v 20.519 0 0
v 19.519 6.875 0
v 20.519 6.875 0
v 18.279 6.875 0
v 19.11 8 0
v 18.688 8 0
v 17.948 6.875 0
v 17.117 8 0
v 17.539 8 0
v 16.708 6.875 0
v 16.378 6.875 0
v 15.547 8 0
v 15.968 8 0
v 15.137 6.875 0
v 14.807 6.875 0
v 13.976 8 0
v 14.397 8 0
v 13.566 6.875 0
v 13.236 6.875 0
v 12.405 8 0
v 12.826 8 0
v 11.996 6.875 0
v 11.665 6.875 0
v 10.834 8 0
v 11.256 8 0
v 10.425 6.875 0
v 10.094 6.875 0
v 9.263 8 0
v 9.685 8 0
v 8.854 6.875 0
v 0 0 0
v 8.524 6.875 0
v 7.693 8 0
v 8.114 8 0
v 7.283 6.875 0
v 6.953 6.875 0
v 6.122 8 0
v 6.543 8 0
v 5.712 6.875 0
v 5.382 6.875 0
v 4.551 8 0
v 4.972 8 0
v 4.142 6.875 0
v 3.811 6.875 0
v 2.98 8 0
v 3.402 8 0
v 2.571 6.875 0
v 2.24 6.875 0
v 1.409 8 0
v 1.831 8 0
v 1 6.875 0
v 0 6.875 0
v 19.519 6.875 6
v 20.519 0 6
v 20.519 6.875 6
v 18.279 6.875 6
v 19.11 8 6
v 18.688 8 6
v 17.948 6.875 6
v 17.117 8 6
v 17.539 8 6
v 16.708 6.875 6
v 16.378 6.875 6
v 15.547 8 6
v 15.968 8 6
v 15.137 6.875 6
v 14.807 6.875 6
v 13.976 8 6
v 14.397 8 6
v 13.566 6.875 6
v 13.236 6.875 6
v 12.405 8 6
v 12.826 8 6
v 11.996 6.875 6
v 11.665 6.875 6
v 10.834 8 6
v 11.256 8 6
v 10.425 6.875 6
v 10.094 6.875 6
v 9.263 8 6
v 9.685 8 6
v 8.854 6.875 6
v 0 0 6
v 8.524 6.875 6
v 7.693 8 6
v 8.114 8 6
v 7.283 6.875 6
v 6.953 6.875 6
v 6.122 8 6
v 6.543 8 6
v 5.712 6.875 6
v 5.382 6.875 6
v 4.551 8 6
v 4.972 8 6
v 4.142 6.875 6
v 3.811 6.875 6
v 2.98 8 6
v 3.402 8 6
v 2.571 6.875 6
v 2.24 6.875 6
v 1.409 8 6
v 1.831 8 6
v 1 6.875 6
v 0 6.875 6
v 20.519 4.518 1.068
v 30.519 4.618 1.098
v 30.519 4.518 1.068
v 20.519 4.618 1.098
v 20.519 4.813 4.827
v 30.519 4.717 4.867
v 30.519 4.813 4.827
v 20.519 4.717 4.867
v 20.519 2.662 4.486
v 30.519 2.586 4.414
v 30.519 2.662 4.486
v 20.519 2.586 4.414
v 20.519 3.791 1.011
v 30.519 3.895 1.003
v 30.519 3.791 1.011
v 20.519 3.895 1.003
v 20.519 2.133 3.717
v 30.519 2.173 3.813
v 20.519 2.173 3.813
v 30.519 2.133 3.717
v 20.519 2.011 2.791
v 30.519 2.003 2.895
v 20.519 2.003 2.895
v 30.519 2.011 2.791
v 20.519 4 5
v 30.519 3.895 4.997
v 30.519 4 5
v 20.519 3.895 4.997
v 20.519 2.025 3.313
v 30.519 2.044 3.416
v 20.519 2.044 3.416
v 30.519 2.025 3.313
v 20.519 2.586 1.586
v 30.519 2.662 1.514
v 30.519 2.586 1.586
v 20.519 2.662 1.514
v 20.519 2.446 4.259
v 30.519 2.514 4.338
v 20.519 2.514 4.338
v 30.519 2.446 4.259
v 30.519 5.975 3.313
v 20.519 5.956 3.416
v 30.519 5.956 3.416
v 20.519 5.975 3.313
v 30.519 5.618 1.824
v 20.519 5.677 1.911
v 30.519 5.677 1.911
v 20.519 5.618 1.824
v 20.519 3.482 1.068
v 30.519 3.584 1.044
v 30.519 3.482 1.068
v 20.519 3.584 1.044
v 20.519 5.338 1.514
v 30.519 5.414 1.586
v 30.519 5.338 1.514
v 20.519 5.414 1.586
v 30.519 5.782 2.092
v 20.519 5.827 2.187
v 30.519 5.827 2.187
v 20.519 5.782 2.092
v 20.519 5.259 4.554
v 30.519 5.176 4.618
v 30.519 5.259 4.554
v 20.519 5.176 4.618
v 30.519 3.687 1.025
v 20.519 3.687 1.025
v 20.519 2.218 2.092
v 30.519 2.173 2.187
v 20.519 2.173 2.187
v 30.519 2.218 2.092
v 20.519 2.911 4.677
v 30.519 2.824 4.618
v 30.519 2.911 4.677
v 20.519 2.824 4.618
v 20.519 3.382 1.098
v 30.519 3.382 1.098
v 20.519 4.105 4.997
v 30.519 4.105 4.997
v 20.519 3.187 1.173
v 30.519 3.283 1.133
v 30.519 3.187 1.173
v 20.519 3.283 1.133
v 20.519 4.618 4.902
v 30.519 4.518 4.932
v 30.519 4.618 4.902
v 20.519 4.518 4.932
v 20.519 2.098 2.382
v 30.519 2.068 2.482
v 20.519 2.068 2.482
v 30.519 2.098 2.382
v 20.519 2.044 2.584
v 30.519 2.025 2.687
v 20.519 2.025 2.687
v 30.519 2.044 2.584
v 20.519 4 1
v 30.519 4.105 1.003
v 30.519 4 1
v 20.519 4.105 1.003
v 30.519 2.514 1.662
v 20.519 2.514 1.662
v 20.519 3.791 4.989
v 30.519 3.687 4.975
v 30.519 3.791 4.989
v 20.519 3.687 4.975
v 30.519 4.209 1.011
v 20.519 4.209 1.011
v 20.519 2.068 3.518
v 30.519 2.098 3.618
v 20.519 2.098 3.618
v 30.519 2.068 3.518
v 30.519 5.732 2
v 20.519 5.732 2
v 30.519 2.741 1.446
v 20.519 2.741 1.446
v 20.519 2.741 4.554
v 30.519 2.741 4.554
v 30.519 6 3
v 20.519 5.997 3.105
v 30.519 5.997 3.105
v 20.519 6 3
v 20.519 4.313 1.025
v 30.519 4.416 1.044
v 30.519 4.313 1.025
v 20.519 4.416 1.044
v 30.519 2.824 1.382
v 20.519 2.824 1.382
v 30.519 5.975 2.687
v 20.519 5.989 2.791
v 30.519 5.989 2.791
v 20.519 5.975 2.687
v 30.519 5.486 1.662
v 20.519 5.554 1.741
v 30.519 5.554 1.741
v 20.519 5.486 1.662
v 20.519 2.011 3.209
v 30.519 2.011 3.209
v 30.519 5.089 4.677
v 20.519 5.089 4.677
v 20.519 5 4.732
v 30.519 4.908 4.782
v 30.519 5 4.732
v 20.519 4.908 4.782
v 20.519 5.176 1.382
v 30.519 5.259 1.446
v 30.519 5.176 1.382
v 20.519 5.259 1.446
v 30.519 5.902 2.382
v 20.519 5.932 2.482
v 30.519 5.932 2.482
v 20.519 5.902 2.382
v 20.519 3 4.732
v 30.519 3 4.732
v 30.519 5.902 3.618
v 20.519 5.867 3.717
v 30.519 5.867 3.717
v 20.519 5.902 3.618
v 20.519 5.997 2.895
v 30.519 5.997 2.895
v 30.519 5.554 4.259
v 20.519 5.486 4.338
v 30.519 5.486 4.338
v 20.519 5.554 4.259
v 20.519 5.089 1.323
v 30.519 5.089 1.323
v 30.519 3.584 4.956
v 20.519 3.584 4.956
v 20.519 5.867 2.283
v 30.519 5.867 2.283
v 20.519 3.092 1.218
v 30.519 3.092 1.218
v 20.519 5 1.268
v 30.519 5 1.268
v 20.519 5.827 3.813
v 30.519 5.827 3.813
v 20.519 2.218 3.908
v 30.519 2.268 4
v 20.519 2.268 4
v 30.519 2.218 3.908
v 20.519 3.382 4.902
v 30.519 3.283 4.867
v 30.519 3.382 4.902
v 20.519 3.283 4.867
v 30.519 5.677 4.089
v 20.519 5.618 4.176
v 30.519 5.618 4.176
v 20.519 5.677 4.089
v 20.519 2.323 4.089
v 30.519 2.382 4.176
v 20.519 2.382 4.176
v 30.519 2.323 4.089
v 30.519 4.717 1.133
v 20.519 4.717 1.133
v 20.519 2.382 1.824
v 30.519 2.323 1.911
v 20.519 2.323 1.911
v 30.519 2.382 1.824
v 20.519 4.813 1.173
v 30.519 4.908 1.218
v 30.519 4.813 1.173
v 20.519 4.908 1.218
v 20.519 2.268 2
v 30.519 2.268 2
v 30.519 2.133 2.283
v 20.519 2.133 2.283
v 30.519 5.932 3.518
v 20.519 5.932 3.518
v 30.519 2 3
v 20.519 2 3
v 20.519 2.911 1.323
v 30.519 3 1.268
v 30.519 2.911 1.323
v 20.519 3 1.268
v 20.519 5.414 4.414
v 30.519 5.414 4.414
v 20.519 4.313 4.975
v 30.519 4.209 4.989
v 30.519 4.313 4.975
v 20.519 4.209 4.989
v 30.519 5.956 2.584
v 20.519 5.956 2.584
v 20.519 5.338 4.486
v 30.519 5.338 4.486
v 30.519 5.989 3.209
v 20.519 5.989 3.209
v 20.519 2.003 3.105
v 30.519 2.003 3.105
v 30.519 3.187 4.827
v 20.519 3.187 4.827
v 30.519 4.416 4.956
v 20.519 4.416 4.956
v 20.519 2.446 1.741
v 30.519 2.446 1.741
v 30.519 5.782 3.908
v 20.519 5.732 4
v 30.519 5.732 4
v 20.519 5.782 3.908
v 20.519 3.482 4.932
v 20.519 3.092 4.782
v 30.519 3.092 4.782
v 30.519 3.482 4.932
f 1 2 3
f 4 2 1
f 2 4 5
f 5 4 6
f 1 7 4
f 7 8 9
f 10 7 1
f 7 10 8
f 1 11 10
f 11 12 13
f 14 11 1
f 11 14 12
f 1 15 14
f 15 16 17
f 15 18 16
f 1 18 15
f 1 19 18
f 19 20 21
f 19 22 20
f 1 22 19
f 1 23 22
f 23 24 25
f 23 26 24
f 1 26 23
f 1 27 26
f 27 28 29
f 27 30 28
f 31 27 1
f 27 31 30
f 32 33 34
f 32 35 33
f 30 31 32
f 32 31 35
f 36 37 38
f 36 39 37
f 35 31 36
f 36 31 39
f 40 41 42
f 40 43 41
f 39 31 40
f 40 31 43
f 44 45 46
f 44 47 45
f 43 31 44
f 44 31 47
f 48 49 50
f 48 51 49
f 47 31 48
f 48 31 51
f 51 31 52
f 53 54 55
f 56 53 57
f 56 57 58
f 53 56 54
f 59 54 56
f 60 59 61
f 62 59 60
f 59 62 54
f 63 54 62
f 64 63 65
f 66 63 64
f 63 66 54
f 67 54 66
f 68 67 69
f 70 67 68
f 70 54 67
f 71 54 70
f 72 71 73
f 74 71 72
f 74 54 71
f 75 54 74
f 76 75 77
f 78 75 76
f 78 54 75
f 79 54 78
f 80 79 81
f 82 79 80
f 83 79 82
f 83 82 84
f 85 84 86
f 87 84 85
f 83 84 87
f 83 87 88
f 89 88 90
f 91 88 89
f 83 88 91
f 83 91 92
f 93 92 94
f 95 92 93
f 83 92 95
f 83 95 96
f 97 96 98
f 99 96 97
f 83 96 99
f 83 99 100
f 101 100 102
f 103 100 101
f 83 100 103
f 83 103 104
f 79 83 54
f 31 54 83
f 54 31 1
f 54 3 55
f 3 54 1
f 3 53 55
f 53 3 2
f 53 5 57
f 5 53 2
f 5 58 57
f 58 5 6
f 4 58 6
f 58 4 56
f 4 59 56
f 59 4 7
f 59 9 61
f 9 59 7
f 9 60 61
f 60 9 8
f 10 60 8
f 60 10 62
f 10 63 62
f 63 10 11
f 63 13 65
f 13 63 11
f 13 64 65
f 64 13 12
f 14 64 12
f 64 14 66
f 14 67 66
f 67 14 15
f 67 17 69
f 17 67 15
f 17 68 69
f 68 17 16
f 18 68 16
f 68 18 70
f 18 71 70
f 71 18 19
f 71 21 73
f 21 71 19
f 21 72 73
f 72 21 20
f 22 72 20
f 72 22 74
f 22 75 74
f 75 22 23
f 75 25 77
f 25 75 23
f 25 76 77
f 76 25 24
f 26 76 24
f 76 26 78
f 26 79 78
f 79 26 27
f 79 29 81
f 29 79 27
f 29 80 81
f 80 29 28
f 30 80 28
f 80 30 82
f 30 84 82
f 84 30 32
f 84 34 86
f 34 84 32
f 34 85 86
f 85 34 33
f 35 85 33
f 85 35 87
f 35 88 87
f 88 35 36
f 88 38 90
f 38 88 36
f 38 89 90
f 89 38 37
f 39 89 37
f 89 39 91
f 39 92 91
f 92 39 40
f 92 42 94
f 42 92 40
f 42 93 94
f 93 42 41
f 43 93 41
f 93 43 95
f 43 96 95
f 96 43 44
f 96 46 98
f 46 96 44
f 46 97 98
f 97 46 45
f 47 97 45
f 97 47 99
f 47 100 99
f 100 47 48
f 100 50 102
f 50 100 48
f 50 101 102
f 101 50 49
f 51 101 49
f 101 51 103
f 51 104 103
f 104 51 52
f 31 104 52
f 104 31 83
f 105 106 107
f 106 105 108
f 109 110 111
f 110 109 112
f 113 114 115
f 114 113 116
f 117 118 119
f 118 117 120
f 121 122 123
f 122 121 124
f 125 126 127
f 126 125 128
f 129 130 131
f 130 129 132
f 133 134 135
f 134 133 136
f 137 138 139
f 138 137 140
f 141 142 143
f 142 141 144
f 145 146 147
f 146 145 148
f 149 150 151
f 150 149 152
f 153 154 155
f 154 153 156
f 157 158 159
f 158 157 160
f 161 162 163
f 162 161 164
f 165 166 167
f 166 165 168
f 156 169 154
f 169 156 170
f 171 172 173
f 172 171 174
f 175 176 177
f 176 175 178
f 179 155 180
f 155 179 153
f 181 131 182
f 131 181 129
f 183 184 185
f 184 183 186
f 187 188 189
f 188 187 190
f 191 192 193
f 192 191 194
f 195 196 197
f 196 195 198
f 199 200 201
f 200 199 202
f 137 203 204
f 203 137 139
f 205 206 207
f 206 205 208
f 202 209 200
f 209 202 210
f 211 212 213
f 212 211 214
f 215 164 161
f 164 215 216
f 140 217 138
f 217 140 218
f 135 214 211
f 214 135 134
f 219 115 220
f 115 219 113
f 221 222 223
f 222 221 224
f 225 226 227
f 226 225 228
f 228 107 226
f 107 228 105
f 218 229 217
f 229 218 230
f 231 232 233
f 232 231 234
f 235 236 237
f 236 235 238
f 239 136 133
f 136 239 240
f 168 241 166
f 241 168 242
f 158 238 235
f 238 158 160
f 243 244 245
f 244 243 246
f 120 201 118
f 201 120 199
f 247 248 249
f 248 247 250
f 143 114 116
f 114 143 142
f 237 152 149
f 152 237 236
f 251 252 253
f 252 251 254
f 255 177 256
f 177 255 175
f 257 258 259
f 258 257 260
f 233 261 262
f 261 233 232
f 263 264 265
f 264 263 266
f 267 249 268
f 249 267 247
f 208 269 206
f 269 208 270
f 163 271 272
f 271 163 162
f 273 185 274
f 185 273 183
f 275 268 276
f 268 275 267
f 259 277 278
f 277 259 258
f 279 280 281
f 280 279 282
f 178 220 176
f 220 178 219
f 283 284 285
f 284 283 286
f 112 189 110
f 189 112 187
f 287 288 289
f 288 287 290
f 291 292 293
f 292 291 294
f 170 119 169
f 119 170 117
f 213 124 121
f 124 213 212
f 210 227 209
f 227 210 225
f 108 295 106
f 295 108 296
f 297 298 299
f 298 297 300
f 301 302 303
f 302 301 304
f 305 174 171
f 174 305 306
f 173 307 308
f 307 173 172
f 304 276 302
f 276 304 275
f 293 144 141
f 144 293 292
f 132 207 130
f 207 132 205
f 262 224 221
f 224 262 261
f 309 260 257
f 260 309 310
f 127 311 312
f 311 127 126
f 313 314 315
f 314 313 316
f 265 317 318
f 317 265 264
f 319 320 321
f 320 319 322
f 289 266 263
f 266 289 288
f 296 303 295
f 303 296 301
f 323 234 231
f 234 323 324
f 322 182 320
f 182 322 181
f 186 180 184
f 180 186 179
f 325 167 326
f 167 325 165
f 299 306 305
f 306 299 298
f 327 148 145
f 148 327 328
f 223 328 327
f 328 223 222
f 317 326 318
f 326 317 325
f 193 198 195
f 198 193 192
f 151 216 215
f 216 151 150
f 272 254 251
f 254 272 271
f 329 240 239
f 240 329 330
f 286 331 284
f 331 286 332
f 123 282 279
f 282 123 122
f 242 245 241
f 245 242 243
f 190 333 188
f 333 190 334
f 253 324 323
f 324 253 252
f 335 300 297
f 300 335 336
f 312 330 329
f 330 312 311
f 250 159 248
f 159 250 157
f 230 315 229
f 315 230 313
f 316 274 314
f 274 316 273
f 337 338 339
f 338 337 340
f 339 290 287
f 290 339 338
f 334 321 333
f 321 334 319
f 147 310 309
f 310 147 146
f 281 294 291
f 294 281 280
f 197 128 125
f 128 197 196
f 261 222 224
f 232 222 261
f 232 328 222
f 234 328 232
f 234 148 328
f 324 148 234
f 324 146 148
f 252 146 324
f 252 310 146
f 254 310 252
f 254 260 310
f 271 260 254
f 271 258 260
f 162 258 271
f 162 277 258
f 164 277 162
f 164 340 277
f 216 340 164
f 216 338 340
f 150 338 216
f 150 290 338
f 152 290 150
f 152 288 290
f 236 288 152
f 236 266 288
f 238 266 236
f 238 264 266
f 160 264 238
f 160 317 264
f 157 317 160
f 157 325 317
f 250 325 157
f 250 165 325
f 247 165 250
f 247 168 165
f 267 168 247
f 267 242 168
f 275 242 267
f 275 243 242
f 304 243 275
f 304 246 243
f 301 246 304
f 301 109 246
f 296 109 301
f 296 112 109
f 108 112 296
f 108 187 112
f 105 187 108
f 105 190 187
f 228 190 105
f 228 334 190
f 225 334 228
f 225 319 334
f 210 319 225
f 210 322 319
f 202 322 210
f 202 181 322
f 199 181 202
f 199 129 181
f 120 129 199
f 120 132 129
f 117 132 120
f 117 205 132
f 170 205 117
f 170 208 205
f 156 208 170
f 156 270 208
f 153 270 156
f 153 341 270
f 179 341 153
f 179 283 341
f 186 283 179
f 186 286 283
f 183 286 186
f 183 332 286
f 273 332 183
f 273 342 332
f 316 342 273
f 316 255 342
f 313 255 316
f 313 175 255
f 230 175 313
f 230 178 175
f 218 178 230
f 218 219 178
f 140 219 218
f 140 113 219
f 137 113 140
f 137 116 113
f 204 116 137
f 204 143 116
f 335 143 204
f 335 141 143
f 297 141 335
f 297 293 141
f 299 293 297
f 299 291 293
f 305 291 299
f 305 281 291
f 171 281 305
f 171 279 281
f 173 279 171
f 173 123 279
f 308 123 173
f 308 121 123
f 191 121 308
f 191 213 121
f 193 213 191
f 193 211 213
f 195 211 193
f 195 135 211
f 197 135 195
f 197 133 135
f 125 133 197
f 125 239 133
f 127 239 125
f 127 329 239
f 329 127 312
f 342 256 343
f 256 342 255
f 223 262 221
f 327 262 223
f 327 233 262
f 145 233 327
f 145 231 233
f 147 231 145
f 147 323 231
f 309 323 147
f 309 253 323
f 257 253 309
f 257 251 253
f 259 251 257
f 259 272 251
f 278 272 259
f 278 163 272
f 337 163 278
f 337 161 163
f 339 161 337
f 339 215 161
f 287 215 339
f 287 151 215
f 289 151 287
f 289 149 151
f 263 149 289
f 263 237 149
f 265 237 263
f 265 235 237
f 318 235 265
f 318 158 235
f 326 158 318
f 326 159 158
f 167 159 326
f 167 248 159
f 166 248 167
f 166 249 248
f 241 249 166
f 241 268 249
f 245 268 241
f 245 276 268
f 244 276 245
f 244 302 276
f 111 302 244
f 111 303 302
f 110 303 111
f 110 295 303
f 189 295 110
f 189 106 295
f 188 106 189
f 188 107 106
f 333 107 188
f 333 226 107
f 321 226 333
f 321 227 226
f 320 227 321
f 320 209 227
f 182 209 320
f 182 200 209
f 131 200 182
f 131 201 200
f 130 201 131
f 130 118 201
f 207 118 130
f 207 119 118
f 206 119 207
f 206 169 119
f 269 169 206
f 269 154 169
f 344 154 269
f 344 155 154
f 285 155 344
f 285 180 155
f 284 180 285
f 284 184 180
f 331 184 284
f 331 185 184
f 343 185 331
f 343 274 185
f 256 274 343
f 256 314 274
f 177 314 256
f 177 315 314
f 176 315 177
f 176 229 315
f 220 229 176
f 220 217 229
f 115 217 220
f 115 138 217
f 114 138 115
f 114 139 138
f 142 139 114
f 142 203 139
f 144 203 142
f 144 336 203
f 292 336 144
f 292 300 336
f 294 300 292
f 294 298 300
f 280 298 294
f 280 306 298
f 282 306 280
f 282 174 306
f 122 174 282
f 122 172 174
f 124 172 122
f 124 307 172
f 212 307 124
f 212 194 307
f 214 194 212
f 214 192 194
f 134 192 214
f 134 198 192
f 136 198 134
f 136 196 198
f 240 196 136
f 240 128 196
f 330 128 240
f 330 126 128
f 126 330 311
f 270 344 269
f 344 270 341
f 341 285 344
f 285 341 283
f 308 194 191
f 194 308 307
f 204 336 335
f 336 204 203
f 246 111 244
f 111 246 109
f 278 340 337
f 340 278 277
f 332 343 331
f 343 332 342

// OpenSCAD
// file: ring_gear.scad
// docs/vault/sandbox/ring_gear.scad
//
// Parametric spur gear in pure OpenSCAD -- no external library, no
// FeatureScript. The same gear that Onshape's Spur Gear FeatureScript
// generates with 4 clicks, expressed here as ~20 lines of editable
// expressions. See docs/vault/onshape-vs-openscad.md for the side-by-
// side comparison and the tradeoffs.
//
// Approximation: tooth flanks are STRAIGHT lines drawn from the root
// circle to the tip circle, slanted by the pressure angle. A real
// involute curve would be a 5-8 point arc per flank. The straight-
// flank version reads as a recognisable gear at this scale and is
// quick to grok; if you need a metrology-grade involute, use BOSL2's
// spur_gear() or the build123d / bd_warehouse pipeline in
// src/vault/mechanism.py.
//
// Open in OpenSCAD GUI, View -> Customizer, drag sliders. To export
// the ring gear alone as an STL:
//   openscad -o ring_gear.stl -D 'show_spurs=false' ring_gear.scad

/* [Gear math (the only knobs that affect meshing)] */
m_module       = 0.5;    // module: mm of pitch diameter per tooth
pressure_deg   = 20;     // pressure angle (degrees)

/* [Ring (sun) gear] */
ring_teeth     = 120;    // Adam's vault ring                          [video-01]
ring_thickness = 4;      // face width
ring_bore_dia  = 50.876; // 2.003 in central mounting bore             [Part 2]

/* [Satellite spurs (set false when exporting an STL of the ring only)] */
show_spurs     = true;
spur_teeth     = 24;     // Adam's spur                                [video-01]
spur_thickness = 4;
spur_bore_dia  = 3;      // shoulder-bolt clearance, illustrative
spur_count     = 12;

/* [Resolution] */
fn_res = 150;
$fn = fn_res;

// ---------------------------------------------------------------------
//                       Derived circle radii
// ---------------------------------------------------------------------
// Pure functions of (n, m). These three expressions are EXACTLY what
// Onshape's Spur Gear FeatureScript computes internally before it draws
// any teeth. The whole gear is determined by `m` and `n` -- everything
// else is geometry.

function pitch_radius(n, m) = n * m / 2;
function tip_radius(n, m)   = pitch_radius(n, m) + m;        // addendum  = m
function root_radius(n, m)  = pitch_radius(n, m) - 1.25 * m; // dedendum  = 1.25m

// ---------------------------------------------------------------------
//                       The gear primitive
// ---------------------------------------------------------------------

module gear_2d(n, m, pa) {
    pitch_r = pitch_radius(n, m);
    tip_r   = tip_radius(n, m);
    root_r  = root_radius(n, m);

    // Half the circular pitch -- the tooth's arc thickness at the
    // pitch circle. (Arc ~ chord for small tooth angles.)
    half_arc_at_pitch = m * PI / 4;

    // Cartesian half-widths at the root and tip circles, slanted by
    // the pressure angle.
    half_root_y = half_arc_at_pitch + (pitch_r - root_r) * tan(pa);
    half_tip_y  = max(half_arc_at_pitch - (tip_r - pitch_r) * tan(pa),
                      0.02);  // keep a sliver so the tip isn't a knife edge

    union() {
        circle(r = root_r);
        for (k = [0 : n - 1]) {
            rotate([0, 0, k * 360 / n])
                polygon(points = [
                    [root_r, -half_root_y],
                    [root_r,  half_root_y],
                    [tip_r,   half_tip_y],
                    [tip_r,  -half_tip_y],
                ]);
        }
    }
}

module gear(n, m, pa, thickness, bore_dia) {
    linear_extrude(height = thickness)
        difference() {
            gear_2d(n, m, pa);
            if (bore_dia > 0) circle(d = bore_dia);
        }
}

// ---------------------------------------------------------------------
//                            Render
// ---------------------------------------------------------------------

// Central ring (sun) gear at the origin.
color("Gold")
    gear(ring_teeth, m_module, pressure_deg, ring_thickness, ring_bore_dia);

// Satellite spurs. Centre distance falls straight out of the same
// pitch-radius math:
//
//   centre_distance = pitch_radius(ring) + pitch_radius(spur)
//                   = (120 + 24) * 0.5 / 2  =  36 mm
//
// Which is also (BCD / 2) where BCD = 72 mm -- the number Adam reads
// off his drawing. Knowing m and the tooth counts FORCES the BCD;
// it's not an independent dimension.
if (show_spurs) {
    centre_distance =
        pitch_radius(ring_teeth, m_module)
        + pitch_radius(spur_teeth, m_module);
    color("Silver")
        for (k = [0 : spur_count - 1]) {
            rotate([0, 0, k * 360 / spur_count])
                translate([centre_distance, 0, 0])
                    gear(spur_teeth, m_module, pressure_deg,
                         spur_thickness, spur_bore_dia);
        }
}
// main file
// docs/vault/sandbox/rack.scad
//
// Parametric gear rack for the 12-pin vault mechanism. Meshes with a
// module-0.5, 20-deg pressure-angle, 24-tooth spur pinion -- the
// satellite spurs documented in docs/vault/onshape-notes.md.
//
// Why here and not in Onshape: Onshape's standard rack FeatureScripts
// have uneven support across versions, and a rack is dead simple to
// express directly. So the rack source-of-truth lives in this .scad
// file (git-trackable, diffable) and the STL goes straight to the
// slicer for printing.
//
// **The tooth profile is mathematically exact, not an approximation.**
// A rack is the involute's degenerate case at infinite radius -- the
// involute curve flattens out into a straight line slanted by the
// pressure angle. So `polygon()` with four points per tooth is the
// correct mating shape for a module-matched spur, not a simplification.
//
// To export the rack alone (no pinion) for printing:
//   openscad -o rack.stl -D 'show_pinion_for_mesh_check=false' rack.scad
//
// To visualise the mesh with the 24T pinion in the GUI:
//   set `show_pinion_for_mesh_check = true` in the Customizer.

use <ring_gear.scad>

/* [Gear math (must match the pinion in onshape-notes.md)] */
m_module       = 0.5;     // module: mm of pitch DIAMETER per tooth
pressure_deg   = 20;      // pressure angle (degrees)
face_width_mm  = 6;       // depth (z) -- match the pinion's Depth setting

/* [Rack body] */
num_teeth      = 12;      // tooth count on the toothed strip
stock_height_mm = 8;      // total cross-section height; Adam's stock is 8x8 mm
end_pad_mm     = 1;       // overhang past first/last tooth root corner

/* [Mounting stud (the end that attaches to the pin)] */
include_stud   = true;
stud_dia_mm    = 4;       // diameter of cylindrical stud
stud_length_mm = 10;      // how far it sticks out past the rack body

/* [Mesh-preview pinion (visual confirmation only -- not exported)] */
show_pinion_for_mesh_check = false;
pinion_teeth   = 24;      // matches the satellite spur

/* [Resolution] */
fn_res = 120;
$fn = fn_res;

// ---------------------------------------------------------------------
//                       Derived rack geometry
// ---------------------------------------------------------------------
// Standard ISO/AGMA rack math. Adapt these expressions and the tooth
// polygon below if you ever want a non-standard tooth profile (e.g.
// stub teeth, extended addendum).

_addendum       = m_module;          // tooth height above pitch line
_dedendum       = 1.25 * m_module;   // tooth depth below pitch line
_circular_pitch = PI * m_module;     // distance between matching tooth points

// Tooth half-widths at the three reference y-levels.
_half_pitch_w = _circular_pitch / 4;
_half_tip_w   = _half_pitch_w - _addendum * tan(pressure_deg);
_half_root_w  = _half_pitch_w + _dedendum * tan(pressure_deg);

// y-levels. y = 0 is the BACK face of the rack (opposite the teeth).
// y_tip = stock_height_mm is the original top-of-stock; teeth are
// "cut into" the top of the stock down to y_root.
_y_tip   = stock_height_mm;
_y_pitch = _y_tip - _addendum;
_y_root  = _y_tip - _addendum - _dedendum;

// First tooth center x. Pad slightly so the strip doesn't end right
// on a root corner -- looks cleaner and prints better.
_first_tooth_cx = end_pad_mm + _half_root_w;
_total_length   = _first_tooth_cx
                  + (num_teeth - 1) * _circular_pitch
                  + _half_root_w + end_pad_mm;

// ---------------------------------------------------------------------
//                            Modules
// ---------------------------------------------------------------------

// One tooth in 2D, centred on x=0. Walks CCW: bottom-right root, up
// the right flank to the tip, across the tip, down the left flank.
module rack_tooth_2d() {
    polygon(points = [
        [ _half_root_w, _y_root],
        [ _half_tip_w,  _y_tip],
        [-_half_tip_w,  _y_tip],
        [-_half_root_w, _y_root],
    ]);
}

// 2D outline of the entire rack: backing strip up to the root level,
// then N teeth sticking up to the tip level.
module rack_2d() {
    union() {
        square([_total_length, _y_root]);
        for (k = [0 : num_teeth - 1]) {
            translate([_first_tooth_cx + k * _circular_pitch, 0])
                rack_tooth_2d();
        }
    }
}

// 3D rack: 2D profile extruded along z by the face width.
module rack_solid() {
    linear_extrude(height = face_width_mm)
        rack_2d();
}

// Cylindrical stud sticking out the +x end of the rack, axis along
// +x, centred on the rack's cross-section middle. Print smooth and
// tap to thread, or model a hole for a heat-set insert if your
// printer can't hold the thread.
module mounting_stud() {
    translate([_total_length, stock_height_mm / 2, face_width_mm / 2])
        rotate([0, 90, 0])
            cylinder(h = stud_length_mm, d = stud_dia_mm);
}

// One pinion gear, sized and placed to demonstrate the mesh. Pinion
// centre sits `pinion_pitch_radius` above the rack's pitch line, so
// the pitch line is tangent to the pitch circle -- the geometric
// definition of "in mesh".
module mesh_preview_pinion() {
    pinion_pitch_r = m_module * pinion_teeth / 2;
    // Mid-rack x for the pinion location.
    cx = _total_length / 2;
    // y so the pinion pitch circle is tangent to the rack pitch line.
    cy = _y_pitch + pinion_pitch_r;
    color("Silver", 0.9)
        translate([cx, cy, 0])
            // gear(n, m, pa, thickness, bore_dia) -- from ring_gear.scad
            gear(pinion_teeth, m_module, pressure_deg, face_width_mm, 3);
}

// ---------------------------------------------------------------------
//                            Main render
// ---------------------------------------------------------------------

color("DimGray") {
    union() {
        rack_solid();
        if (include_stud) mounting_stud();
    }
}

if (show_pinion_for_mesh_check) mesh_preview_pinion();

// ---------------------------------------------------------------------
// Printing notes
// ---------------------------------------------------------------------
// At m_module = 0.5, the tip width is ~0.21 mm. That's narrower than
// a typical 0.4 mm FDM nozzle, so the tip will print as a single
// rounded bead. Fine for a low-load study rack; for a load-bearing
// rack consider:
//   * bumping m_module to 1.0 (tip width 0.42 mm -- one bead wide)
//   * printing with a 0.2 mm nozzle
//   * printing in nylon or polycarbonate instead of PLA
// Print orientation matters too: lay the rack flat on the bed with
// teeth pointing UP so each tooth is built up in layers from the
// root rather than hanging off the side.
